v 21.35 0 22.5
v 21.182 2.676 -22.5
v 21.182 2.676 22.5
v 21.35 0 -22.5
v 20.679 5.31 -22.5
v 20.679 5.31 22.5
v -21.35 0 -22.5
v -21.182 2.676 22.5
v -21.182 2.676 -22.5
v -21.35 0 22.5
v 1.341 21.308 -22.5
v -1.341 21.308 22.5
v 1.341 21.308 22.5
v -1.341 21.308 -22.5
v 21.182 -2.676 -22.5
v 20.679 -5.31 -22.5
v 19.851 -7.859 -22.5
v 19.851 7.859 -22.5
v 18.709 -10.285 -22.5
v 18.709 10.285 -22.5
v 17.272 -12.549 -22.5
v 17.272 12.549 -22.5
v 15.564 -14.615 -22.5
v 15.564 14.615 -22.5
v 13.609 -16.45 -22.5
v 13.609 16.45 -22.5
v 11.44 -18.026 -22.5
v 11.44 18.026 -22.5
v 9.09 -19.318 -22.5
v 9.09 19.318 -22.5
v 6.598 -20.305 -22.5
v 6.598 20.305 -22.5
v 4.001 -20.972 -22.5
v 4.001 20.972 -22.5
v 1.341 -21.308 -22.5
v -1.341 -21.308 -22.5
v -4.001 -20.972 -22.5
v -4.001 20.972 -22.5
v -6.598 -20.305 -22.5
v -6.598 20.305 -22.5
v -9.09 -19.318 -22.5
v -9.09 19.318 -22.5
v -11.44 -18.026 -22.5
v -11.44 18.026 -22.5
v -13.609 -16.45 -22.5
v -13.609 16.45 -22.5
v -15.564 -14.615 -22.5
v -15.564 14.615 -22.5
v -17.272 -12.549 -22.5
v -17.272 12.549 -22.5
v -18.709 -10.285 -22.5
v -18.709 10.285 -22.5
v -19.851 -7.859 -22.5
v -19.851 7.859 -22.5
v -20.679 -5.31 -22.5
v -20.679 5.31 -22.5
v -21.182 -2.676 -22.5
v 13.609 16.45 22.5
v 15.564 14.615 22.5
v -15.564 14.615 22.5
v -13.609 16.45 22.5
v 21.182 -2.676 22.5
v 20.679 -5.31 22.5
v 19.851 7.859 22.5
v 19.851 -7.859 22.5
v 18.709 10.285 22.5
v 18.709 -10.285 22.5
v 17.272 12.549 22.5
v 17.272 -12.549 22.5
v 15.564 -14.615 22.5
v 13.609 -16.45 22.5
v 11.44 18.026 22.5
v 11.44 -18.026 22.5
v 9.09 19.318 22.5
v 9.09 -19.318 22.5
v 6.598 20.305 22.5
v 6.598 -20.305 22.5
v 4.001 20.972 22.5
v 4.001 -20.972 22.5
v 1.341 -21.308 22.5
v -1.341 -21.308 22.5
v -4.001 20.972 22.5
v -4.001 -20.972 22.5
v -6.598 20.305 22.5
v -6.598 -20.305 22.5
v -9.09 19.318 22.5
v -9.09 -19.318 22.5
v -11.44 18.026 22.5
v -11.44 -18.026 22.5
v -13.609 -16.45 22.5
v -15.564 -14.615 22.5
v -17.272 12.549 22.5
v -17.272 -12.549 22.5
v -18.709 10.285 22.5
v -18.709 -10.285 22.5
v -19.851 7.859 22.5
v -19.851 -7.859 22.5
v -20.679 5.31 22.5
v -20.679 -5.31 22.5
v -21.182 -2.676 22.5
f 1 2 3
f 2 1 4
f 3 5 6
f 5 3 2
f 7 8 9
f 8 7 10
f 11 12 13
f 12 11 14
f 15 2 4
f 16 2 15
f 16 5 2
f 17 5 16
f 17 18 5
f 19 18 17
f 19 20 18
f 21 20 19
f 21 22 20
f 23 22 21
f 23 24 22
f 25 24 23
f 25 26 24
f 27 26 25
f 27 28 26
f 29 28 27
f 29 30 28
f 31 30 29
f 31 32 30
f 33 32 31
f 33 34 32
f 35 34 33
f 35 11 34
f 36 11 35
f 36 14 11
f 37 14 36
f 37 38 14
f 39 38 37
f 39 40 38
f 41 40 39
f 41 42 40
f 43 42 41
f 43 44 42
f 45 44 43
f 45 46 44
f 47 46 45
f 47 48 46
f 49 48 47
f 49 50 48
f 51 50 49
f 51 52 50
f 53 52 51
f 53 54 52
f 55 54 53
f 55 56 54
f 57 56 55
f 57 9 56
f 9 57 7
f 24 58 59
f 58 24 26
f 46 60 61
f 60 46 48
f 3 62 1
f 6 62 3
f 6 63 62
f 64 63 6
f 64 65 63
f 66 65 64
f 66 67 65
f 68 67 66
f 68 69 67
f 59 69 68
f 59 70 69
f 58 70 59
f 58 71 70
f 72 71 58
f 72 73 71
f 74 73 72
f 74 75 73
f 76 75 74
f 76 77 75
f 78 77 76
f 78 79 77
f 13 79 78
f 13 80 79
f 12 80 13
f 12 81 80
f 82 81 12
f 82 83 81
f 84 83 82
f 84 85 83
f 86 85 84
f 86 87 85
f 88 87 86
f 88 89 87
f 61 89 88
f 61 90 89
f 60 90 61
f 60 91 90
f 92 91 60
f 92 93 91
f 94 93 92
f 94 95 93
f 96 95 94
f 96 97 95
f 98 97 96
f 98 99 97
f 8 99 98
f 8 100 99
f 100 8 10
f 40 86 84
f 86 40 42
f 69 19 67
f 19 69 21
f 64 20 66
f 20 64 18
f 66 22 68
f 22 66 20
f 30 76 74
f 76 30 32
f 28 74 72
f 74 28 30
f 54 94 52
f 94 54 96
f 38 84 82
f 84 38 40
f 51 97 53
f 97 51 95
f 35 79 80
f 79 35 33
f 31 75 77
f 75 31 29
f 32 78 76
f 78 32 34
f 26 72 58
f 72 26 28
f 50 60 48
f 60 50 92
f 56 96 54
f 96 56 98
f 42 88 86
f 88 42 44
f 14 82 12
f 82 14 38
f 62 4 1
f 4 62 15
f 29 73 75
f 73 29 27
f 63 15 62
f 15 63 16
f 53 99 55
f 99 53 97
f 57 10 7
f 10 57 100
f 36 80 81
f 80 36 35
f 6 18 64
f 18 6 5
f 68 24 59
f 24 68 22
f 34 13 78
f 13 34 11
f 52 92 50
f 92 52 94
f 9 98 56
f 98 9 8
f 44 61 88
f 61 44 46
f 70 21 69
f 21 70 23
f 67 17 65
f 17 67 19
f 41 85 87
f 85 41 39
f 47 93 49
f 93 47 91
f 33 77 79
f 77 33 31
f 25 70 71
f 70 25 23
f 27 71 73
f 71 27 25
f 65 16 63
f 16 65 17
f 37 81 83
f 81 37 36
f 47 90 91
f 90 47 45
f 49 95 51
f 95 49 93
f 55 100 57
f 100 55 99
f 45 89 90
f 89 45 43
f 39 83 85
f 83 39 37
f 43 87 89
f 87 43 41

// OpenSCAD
$fn = 50;


difference() {
	union() {
		translate(v = [0, 0, -22.5000000000]) {
			cylinder(h = 45, r = 21.3500000000);
		}
	}
	union() {
		translate(v = [0, 0, -100.0000000000]) {
			cylinder(h = 200, r = 0);
		}
	}
}
